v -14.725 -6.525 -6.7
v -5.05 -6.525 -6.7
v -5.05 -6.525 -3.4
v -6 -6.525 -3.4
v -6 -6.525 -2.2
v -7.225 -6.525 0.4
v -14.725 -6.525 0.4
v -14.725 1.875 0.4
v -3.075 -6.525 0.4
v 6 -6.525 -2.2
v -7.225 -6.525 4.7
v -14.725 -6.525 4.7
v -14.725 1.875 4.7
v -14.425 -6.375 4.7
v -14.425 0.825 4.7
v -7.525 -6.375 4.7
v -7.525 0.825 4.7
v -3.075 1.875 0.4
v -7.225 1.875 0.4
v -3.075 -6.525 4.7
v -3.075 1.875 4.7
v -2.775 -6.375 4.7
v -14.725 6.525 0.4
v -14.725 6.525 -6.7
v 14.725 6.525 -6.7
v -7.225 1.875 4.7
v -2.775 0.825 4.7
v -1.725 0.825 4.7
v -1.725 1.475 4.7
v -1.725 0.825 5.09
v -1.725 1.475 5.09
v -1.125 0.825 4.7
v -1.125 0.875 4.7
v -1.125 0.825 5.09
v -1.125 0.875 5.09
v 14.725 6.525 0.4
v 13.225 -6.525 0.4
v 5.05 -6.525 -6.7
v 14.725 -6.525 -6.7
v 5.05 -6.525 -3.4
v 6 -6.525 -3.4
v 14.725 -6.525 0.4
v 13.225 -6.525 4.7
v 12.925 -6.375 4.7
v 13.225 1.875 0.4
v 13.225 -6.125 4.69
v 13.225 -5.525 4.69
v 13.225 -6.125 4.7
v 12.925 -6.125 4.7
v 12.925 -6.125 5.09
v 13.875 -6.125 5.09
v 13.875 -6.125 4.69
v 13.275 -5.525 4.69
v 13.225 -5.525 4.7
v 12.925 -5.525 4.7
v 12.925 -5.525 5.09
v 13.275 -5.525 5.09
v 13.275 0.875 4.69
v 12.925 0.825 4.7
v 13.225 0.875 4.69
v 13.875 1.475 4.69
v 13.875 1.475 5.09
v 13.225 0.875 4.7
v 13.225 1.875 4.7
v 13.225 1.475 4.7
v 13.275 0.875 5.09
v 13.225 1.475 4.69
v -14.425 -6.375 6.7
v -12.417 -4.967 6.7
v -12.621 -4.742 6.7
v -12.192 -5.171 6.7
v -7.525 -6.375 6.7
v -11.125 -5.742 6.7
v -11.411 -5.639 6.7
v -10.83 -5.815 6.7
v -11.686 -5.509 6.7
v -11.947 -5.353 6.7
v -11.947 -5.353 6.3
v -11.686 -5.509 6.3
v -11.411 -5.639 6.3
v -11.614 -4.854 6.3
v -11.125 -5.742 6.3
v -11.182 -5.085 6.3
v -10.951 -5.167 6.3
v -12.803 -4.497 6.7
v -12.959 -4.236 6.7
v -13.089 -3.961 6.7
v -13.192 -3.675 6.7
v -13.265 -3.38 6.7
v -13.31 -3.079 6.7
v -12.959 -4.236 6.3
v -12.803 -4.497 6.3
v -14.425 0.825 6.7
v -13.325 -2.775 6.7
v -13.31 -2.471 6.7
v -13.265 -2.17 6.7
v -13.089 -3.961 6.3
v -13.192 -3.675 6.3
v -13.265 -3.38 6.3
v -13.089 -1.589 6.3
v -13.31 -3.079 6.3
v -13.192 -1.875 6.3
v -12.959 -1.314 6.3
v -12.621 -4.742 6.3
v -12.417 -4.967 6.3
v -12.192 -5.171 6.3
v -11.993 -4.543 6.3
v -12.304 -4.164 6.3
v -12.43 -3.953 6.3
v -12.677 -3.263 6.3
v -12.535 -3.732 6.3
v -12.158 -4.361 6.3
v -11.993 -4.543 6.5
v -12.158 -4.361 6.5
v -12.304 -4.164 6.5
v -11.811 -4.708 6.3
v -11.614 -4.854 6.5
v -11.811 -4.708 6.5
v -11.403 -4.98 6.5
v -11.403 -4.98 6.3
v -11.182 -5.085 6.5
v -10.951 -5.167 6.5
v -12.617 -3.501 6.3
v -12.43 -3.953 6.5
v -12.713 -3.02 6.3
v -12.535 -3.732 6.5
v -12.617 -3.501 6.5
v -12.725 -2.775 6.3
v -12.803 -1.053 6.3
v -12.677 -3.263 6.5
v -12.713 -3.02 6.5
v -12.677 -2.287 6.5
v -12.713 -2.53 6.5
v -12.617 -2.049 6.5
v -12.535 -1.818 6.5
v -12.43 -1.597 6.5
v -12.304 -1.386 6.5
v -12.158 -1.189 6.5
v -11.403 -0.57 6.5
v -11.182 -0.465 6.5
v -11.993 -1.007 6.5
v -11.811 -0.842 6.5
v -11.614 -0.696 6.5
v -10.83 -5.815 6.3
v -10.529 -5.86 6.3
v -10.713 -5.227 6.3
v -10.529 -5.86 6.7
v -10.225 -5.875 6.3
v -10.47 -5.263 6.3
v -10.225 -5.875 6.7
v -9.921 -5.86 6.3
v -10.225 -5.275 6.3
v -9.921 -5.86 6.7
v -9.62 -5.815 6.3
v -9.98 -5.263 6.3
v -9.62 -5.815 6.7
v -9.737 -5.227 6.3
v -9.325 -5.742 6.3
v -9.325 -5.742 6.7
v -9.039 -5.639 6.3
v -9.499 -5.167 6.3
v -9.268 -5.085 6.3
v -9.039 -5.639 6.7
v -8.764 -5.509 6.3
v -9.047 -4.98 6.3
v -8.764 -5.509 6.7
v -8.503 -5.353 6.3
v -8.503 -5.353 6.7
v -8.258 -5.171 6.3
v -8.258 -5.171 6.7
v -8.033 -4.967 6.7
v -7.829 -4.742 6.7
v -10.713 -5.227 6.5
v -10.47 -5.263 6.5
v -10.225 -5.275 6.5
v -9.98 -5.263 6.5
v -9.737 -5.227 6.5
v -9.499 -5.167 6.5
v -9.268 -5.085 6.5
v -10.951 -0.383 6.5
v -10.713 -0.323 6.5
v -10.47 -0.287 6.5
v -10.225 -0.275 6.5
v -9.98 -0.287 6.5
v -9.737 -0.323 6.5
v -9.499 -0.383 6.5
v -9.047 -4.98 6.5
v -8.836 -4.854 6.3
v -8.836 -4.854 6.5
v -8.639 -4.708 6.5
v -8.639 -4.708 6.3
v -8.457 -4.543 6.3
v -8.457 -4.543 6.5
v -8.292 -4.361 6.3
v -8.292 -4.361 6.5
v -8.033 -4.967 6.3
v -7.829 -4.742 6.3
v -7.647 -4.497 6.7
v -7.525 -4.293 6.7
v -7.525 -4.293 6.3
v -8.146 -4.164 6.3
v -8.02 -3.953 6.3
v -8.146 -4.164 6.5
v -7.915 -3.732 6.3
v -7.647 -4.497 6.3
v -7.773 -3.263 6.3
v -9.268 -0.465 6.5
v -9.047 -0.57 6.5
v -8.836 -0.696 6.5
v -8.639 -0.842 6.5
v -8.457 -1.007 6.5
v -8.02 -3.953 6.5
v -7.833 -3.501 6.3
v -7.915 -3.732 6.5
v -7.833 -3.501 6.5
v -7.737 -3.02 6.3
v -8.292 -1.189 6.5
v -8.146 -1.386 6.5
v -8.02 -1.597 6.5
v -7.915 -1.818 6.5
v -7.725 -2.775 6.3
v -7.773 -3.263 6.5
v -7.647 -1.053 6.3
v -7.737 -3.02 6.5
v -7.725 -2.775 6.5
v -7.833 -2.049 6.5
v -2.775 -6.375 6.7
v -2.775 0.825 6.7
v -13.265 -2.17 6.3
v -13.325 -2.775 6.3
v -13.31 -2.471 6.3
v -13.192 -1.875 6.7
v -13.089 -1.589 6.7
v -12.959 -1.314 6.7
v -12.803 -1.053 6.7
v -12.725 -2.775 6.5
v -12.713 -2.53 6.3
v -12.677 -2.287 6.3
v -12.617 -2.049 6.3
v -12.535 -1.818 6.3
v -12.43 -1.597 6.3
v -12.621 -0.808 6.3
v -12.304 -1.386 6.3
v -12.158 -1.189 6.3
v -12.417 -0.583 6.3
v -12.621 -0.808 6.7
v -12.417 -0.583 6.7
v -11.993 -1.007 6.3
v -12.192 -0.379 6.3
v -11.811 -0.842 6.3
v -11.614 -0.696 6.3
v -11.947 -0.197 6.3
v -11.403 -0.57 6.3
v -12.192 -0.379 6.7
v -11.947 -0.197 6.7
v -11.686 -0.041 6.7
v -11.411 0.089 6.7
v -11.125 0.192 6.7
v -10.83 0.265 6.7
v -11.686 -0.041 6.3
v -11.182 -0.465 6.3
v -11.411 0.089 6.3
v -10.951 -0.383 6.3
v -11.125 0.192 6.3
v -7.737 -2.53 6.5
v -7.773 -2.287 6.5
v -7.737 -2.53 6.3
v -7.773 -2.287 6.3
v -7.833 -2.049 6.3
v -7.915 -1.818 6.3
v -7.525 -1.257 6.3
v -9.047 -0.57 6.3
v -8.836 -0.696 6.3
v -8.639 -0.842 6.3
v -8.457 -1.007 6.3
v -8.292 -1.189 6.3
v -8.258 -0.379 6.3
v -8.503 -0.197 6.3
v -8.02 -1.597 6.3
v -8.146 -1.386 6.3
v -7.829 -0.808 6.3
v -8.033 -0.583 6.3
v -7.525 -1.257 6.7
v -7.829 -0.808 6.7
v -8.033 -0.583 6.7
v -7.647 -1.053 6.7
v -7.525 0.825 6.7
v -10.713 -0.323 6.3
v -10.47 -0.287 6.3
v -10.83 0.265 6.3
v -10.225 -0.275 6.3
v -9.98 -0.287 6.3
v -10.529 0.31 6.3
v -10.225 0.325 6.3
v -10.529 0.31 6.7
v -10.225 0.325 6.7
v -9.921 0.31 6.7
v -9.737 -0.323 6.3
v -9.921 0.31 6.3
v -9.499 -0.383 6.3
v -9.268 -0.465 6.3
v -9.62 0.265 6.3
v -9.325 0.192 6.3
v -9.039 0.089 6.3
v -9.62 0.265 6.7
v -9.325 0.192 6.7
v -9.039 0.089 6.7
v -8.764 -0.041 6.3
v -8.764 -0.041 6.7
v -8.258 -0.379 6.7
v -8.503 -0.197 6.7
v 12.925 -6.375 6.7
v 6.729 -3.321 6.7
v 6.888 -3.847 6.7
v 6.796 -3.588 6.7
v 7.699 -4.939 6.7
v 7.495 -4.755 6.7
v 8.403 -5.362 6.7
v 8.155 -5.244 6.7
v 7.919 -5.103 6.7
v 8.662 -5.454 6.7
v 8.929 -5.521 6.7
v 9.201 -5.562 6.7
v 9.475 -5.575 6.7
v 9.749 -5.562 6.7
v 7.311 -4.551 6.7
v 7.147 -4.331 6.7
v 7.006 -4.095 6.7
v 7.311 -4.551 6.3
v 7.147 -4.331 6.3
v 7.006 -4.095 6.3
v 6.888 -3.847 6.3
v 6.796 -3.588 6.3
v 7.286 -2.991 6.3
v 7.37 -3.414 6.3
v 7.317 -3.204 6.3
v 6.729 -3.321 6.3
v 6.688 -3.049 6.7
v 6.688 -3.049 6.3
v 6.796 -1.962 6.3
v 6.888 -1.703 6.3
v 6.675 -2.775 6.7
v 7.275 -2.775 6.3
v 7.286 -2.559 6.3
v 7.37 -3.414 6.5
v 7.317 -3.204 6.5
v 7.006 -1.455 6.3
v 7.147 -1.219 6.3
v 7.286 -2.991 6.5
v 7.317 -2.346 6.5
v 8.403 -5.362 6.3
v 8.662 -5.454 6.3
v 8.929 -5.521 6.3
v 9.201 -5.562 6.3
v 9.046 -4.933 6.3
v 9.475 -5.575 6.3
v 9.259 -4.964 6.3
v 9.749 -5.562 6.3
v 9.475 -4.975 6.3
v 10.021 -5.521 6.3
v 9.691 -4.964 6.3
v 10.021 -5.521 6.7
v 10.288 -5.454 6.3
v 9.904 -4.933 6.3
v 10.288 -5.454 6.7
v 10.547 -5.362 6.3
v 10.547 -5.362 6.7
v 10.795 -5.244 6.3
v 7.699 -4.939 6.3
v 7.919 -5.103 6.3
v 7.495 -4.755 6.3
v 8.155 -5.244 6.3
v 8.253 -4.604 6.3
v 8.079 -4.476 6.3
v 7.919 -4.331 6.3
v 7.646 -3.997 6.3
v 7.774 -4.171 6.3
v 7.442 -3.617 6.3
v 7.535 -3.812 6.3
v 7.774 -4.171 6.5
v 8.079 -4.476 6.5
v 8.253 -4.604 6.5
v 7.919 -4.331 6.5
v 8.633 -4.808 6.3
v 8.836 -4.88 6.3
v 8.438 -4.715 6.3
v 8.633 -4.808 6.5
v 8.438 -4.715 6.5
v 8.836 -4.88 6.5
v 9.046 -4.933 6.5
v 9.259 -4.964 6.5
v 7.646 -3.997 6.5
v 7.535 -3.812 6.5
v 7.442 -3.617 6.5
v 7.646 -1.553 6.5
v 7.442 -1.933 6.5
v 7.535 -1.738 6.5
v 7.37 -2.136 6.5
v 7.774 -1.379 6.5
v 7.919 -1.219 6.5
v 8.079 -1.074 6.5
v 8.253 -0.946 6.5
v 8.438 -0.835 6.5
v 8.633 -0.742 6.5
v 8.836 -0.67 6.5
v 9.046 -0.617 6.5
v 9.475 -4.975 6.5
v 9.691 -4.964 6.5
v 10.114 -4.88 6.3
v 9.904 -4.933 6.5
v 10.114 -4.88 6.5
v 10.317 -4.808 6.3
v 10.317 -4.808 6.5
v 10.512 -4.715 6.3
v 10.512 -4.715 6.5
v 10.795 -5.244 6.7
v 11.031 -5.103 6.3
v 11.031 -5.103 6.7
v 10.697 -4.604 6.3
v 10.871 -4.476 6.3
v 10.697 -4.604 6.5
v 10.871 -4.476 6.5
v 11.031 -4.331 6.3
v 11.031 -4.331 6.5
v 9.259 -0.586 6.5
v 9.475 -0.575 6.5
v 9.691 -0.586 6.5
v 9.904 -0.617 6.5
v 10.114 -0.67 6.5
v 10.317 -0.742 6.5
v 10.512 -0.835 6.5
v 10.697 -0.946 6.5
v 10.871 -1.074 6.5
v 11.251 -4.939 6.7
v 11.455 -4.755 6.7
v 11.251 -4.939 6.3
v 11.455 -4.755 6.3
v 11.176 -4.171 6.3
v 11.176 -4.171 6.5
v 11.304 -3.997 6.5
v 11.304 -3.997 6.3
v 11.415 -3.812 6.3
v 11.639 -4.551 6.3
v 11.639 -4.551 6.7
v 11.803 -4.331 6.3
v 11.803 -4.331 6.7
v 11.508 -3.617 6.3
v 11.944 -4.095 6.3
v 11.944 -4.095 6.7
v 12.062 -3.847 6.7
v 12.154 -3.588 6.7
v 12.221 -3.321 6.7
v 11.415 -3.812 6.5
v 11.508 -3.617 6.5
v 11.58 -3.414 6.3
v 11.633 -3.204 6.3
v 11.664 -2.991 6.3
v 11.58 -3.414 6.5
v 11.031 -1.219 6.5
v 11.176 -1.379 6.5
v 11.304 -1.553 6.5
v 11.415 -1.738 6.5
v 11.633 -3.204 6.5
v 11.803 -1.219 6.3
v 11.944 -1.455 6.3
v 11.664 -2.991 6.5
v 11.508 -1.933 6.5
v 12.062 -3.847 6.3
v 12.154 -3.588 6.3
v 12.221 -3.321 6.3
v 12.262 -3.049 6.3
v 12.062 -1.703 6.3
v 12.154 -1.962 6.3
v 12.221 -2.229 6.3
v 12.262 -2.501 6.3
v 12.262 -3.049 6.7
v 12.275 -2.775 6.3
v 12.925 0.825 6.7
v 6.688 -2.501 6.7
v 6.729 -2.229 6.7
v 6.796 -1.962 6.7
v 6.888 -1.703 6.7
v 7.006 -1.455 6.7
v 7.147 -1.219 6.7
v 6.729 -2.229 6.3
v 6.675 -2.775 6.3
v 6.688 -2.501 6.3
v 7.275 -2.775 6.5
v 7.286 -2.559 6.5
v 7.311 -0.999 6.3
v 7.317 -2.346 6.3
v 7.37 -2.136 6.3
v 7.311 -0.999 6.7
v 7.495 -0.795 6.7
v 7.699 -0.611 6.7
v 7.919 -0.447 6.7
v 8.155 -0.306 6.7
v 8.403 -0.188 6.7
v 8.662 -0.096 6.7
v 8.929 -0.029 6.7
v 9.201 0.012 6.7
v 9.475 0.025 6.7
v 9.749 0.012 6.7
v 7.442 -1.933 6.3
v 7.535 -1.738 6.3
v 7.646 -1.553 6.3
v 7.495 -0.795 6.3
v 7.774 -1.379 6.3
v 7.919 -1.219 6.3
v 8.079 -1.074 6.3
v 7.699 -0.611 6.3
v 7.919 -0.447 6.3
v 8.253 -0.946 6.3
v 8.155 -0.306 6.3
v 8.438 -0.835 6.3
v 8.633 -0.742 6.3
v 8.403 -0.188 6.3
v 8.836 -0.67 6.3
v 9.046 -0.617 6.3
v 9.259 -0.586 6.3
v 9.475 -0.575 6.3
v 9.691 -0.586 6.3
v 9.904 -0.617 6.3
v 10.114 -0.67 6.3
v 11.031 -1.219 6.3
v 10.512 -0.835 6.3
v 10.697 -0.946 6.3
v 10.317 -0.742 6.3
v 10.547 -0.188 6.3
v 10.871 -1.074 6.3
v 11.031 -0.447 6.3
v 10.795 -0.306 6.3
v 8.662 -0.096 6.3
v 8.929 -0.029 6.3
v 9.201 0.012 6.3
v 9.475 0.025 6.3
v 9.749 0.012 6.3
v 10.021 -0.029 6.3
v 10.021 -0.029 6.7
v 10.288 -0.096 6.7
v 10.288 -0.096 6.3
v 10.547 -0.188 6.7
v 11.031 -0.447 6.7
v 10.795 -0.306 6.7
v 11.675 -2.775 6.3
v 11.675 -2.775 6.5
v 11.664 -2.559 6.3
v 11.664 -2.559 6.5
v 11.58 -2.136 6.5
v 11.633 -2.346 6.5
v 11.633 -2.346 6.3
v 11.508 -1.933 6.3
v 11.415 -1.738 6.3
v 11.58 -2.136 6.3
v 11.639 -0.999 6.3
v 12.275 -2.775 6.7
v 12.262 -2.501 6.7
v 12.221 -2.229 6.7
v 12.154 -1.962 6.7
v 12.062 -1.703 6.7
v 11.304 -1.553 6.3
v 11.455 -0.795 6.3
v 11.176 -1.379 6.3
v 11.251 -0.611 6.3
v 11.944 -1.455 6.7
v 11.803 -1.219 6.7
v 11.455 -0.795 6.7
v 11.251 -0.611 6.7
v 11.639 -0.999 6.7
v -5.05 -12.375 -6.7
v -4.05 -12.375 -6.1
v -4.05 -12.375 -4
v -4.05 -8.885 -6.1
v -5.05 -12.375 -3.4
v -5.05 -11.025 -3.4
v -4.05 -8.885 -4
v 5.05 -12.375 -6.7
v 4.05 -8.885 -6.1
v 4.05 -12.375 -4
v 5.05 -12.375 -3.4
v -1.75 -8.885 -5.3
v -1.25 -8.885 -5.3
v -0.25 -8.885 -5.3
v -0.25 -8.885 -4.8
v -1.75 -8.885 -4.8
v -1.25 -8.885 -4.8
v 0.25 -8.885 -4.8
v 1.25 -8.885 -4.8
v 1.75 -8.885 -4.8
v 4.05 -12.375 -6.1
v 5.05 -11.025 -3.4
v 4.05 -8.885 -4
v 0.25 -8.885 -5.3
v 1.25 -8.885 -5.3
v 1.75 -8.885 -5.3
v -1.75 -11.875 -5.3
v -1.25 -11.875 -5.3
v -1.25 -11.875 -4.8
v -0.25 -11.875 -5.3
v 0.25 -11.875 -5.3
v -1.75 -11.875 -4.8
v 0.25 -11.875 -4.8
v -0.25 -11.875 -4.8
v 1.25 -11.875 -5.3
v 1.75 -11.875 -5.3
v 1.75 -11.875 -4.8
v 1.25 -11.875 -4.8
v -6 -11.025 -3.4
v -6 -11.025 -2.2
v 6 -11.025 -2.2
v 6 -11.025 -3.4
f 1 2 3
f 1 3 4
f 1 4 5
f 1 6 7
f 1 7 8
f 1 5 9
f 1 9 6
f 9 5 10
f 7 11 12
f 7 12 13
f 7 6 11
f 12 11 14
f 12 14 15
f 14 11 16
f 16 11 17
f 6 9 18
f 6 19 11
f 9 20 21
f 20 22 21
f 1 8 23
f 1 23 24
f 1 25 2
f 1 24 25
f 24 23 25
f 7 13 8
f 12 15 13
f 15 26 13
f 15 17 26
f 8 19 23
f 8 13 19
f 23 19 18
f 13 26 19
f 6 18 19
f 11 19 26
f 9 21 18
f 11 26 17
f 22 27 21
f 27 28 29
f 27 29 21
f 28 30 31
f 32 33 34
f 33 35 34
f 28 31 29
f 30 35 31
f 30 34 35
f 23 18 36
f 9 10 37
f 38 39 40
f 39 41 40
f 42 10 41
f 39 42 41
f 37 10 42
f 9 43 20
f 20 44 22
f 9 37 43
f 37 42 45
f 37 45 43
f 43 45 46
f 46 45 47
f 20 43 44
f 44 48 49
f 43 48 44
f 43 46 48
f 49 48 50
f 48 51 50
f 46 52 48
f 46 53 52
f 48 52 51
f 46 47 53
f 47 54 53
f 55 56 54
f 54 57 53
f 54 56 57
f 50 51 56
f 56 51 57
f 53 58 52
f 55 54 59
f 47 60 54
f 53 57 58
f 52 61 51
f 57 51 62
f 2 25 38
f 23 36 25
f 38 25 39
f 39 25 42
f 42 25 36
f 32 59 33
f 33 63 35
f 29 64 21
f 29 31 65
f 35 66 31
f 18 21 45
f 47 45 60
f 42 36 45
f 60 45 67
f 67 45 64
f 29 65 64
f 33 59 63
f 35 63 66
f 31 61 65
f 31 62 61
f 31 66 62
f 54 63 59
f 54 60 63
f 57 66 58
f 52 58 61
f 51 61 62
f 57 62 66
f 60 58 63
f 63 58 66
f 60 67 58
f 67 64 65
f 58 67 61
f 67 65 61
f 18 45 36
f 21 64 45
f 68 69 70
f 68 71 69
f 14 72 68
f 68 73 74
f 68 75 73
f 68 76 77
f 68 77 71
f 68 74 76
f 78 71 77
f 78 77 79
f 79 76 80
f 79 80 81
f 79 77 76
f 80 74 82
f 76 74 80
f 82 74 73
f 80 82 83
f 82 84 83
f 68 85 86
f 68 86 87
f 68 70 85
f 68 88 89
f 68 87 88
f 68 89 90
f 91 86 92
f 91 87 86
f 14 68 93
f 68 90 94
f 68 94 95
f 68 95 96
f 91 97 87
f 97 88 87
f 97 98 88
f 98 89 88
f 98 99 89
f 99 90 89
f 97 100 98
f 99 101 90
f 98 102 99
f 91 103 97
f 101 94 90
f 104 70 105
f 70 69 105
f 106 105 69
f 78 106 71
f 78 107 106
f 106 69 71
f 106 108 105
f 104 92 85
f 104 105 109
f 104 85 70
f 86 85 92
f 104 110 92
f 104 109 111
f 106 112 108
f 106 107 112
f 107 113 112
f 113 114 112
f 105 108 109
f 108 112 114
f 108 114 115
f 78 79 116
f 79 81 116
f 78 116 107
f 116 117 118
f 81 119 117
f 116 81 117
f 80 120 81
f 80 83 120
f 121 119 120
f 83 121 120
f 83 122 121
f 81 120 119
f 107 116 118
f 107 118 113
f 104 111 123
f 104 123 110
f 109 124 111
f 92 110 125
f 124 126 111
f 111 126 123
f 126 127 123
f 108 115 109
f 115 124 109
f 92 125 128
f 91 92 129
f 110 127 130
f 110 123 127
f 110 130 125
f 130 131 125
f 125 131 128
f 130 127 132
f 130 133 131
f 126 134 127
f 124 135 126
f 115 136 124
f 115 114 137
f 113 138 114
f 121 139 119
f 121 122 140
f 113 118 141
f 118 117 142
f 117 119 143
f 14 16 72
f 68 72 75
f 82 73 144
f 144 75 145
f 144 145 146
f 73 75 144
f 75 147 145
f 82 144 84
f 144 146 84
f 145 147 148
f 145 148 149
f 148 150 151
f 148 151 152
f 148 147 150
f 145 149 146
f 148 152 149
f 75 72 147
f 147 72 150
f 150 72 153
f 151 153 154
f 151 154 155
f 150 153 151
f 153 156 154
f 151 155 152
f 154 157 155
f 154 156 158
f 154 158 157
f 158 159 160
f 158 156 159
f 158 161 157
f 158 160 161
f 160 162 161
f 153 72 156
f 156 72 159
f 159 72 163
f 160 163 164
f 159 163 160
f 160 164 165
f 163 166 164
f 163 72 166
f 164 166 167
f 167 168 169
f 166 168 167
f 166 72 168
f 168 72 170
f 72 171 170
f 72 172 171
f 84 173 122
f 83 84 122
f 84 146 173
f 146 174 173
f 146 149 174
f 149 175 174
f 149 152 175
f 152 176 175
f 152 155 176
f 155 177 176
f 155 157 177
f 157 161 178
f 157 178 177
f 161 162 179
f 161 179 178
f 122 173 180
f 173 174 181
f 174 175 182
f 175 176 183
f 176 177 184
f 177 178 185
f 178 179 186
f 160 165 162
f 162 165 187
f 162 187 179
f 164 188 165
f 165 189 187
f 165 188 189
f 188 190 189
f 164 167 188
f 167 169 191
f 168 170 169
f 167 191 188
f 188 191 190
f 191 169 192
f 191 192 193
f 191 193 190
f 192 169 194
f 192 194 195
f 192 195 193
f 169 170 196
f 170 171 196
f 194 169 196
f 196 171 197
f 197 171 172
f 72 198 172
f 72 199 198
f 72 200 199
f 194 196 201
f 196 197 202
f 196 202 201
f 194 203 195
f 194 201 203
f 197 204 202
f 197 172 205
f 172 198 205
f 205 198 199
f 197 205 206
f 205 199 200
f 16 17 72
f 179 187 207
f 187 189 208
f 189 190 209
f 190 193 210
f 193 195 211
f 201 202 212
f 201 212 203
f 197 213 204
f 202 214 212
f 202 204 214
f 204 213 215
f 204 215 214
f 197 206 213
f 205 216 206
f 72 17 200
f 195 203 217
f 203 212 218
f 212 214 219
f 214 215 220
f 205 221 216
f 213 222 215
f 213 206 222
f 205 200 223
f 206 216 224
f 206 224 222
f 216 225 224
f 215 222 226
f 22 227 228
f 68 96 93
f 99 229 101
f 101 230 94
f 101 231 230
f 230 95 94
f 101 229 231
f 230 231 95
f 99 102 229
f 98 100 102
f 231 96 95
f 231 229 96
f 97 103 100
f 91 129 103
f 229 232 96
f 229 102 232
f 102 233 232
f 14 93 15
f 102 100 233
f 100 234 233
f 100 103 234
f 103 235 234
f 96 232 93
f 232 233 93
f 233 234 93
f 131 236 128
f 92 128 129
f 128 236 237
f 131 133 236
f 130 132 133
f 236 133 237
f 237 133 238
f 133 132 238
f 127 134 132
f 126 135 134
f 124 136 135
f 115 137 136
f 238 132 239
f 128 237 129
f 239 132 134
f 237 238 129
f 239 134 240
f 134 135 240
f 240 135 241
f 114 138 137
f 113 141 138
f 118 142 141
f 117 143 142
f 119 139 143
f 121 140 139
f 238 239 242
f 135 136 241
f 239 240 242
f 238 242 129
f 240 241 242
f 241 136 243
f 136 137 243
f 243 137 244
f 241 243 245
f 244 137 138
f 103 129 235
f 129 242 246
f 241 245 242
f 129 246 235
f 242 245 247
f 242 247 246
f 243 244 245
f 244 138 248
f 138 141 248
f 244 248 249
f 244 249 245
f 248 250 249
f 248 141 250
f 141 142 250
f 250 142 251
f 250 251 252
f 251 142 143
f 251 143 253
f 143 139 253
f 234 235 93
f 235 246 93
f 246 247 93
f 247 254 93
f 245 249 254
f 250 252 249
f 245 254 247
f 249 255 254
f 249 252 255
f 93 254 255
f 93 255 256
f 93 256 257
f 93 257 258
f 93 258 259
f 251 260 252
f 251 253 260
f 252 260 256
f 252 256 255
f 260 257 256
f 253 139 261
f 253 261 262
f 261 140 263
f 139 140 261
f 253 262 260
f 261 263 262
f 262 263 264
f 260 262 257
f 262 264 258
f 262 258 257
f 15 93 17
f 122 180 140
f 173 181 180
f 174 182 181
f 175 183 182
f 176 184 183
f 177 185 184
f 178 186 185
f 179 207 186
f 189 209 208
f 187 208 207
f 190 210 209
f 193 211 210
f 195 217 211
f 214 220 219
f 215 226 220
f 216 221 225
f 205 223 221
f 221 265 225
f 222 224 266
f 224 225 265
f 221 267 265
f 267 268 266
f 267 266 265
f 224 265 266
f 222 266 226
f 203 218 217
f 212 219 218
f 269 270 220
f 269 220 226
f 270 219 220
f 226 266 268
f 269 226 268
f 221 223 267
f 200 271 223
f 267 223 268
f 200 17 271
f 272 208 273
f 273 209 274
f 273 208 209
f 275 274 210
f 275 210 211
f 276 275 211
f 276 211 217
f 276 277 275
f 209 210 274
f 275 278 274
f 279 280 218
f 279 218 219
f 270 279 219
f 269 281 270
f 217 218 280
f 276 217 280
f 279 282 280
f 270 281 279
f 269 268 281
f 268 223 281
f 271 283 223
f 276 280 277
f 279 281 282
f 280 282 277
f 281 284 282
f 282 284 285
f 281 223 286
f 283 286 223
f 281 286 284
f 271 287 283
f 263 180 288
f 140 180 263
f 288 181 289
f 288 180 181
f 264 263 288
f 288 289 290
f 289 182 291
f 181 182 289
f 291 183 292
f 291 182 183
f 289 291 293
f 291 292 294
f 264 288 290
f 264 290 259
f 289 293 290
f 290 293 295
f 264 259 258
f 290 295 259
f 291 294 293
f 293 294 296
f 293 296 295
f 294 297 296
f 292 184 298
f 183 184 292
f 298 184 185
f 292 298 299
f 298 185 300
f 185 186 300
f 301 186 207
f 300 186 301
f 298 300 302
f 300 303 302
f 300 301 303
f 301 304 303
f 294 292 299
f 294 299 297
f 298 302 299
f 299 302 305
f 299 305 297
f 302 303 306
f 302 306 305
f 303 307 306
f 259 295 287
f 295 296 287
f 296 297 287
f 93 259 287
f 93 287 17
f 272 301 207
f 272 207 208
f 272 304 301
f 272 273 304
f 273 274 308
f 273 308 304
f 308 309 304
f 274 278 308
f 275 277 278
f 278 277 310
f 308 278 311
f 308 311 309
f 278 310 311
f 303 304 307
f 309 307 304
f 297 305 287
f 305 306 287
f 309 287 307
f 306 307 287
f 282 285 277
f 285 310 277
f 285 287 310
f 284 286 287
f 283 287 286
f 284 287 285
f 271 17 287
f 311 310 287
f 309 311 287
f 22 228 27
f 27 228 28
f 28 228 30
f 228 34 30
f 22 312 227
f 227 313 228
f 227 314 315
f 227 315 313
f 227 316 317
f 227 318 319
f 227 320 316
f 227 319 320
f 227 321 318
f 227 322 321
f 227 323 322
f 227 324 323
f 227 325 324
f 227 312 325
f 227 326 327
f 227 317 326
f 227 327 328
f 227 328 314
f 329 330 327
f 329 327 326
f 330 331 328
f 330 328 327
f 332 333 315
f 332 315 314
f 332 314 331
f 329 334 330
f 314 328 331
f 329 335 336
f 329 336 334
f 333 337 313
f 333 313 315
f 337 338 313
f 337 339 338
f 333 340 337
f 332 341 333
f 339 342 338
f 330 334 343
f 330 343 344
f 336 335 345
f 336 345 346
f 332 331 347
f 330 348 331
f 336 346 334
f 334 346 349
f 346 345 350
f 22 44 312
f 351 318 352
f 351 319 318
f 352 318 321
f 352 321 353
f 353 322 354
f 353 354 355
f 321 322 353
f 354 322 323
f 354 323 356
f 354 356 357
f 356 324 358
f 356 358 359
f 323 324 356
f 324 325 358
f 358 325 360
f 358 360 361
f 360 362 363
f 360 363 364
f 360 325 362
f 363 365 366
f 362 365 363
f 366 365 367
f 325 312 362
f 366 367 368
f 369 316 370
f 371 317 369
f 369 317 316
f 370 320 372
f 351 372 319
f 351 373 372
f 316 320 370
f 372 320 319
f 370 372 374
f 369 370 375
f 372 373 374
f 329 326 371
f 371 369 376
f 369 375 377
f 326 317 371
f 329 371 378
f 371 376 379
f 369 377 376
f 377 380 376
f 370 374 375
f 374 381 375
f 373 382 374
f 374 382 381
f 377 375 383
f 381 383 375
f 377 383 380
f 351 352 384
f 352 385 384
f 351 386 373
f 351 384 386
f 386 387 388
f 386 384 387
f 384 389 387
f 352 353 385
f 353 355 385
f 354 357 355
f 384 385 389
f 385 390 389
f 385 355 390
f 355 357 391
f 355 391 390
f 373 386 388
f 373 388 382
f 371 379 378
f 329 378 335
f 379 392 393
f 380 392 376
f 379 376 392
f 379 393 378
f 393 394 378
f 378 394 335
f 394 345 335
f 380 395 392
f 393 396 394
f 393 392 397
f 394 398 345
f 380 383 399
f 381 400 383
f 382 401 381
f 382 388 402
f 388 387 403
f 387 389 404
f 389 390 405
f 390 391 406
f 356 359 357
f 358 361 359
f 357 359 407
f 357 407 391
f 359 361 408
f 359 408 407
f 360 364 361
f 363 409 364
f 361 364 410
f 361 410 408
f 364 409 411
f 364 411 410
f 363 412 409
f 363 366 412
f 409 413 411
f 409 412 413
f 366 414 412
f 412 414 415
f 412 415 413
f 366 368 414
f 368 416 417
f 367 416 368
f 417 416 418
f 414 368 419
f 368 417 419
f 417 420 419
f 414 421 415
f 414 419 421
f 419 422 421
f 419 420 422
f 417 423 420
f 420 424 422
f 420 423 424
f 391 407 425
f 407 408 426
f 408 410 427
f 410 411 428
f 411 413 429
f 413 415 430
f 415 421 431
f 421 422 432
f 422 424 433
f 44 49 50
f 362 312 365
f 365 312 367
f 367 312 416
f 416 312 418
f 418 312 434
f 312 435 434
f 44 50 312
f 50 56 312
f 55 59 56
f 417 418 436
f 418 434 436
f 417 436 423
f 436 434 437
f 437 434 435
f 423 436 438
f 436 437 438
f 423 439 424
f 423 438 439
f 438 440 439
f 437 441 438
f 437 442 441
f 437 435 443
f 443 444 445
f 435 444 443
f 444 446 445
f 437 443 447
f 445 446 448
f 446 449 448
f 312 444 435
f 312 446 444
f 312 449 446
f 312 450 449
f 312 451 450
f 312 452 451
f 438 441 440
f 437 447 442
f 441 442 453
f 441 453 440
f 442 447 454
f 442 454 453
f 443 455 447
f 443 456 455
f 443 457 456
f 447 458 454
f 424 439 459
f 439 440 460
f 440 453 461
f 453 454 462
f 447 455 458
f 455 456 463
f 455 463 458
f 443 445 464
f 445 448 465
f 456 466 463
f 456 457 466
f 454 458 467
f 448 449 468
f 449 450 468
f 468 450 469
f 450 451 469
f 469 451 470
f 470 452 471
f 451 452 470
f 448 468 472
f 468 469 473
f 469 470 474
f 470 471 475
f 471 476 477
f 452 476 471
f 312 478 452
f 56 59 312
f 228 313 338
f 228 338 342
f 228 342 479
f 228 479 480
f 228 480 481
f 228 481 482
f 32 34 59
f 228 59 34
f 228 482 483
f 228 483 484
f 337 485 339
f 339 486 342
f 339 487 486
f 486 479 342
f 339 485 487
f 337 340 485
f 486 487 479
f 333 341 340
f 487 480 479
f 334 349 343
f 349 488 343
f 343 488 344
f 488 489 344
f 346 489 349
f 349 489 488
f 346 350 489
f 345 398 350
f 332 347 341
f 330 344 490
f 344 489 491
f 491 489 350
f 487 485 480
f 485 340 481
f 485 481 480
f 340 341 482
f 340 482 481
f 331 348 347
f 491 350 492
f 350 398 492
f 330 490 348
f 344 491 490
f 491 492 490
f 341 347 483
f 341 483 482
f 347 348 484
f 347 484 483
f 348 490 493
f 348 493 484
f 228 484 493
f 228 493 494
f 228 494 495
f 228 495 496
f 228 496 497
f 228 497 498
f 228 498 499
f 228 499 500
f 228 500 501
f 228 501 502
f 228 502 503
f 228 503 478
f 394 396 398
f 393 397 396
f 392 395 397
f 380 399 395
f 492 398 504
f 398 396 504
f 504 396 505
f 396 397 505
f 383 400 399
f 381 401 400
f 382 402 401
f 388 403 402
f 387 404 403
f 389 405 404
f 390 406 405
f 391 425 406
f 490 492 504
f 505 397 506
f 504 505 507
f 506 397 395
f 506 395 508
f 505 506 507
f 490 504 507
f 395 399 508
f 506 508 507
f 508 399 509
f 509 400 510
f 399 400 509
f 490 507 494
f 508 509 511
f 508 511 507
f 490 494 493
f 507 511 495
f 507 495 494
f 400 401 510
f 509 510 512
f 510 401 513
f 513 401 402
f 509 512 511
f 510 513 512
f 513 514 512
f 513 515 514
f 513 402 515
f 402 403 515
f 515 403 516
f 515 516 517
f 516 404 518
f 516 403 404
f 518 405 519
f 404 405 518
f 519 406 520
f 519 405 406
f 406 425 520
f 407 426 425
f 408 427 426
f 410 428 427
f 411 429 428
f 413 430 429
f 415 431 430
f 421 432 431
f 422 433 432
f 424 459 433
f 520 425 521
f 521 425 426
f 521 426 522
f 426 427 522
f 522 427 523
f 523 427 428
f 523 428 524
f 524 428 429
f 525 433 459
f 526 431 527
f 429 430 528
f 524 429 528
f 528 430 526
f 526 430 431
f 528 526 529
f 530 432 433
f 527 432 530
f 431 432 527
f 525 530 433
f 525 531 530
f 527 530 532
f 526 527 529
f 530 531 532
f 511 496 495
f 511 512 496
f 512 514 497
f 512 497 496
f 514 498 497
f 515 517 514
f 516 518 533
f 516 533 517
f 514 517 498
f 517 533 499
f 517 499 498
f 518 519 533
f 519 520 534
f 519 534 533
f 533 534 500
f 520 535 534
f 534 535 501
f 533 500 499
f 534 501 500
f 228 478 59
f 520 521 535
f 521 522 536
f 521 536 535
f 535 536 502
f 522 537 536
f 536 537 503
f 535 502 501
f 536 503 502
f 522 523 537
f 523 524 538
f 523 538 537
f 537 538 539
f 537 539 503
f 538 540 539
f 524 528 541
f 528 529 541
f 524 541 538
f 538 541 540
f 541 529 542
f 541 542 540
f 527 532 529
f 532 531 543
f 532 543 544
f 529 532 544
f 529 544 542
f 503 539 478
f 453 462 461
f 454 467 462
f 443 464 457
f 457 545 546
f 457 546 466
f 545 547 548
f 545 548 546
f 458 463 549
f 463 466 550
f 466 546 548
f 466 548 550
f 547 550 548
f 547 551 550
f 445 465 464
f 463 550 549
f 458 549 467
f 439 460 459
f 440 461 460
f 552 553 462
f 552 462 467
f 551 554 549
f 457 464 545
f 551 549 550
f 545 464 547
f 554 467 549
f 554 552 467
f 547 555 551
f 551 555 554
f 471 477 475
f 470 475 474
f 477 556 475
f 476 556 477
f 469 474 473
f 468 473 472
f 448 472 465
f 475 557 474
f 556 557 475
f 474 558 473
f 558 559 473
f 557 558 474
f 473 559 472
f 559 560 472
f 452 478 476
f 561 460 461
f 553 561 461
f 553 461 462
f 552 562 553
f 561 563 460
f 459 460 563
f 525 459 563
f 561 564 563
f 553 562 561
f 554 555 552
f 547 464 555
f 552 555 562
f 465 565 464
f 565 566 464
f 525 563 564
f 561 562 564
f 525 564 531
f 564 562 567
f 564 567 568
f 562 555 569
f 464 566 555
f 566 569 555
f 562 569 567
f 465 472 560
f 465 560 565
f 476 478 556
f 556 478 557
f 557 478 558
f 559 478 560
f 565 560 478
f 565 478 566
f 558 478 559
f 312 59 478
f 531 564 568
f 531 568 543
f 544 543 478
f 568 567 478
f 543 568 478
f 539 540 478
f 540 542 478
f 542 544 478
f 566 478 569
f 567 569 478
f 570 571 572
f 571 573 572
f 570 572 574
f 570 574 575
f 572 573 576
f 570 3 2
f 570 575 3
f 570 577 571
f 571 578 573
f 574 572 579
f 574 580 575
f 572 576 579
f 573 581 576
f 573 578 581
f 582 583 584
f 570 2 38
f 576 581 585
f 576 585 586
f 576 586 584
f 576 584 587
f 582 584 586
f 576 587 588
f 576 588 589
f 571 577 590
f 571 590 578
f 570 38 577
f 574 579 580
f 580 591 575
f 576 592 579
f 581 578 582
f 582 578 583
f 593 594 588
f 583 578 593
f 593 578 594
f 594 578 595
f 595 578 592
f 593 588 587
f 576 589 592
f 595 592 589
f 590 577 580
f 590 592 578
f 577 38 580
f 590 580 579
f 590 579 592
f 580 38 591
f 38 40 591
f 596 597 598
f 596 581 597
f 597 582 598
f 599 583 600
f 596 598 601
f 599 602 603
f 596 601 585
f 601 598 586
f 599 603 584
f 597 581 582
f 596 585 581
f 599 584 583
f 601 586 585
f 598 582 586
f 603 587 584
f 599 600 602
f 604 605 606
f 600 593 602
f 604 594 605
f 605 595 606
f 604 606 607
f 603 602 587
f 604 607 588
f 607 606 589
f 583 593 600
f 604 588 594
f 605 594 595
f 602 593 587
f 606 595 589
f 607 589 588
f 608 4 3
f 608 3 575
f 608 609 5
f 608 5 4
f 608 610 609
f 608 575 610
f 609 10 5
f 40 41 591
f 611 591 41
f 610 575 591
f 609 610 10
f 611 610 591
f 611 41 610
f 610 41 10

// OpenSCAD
// Sharp GP2Y0D413K0F 距離センサ 外形モデル
// 単位: mm
// 座標系: 本体中心を原点、幅方向 X、高さ方向 Y (+Y 上面)、
//         取付面 (PWB / コネクタ側) を -Z、レンズ面を +Z
$fn = 64;

// ---------- 主要寸法 (データシートより) ----------
W        = 29.45;   // 全幅
H_CASE   = 13.05;   // ケース高さ
D_REAR   = 7.1;     // 後部本体 (PWB 側) の奥行
D_FRONT  = 6.3;     // 前部レンズケースの奥行 (レンズ突出を含む)
D_LENS   = 2.0;     // レンズ突出量
D_TOTAL  = D_REAR + D_FRONT;   // 13.4

H_FRONT  = 8.4;     // 前部レンズケース高さ
H_LENS   = 7.2;     // レンズ部高さ
LENS_CY  = 3.75;    // レンズ中心高さ (ケース下面基準)

X_EMIT   = 4.5;     // 発光側レンズ中心 (左端基準)
X_DET    = 4.5 + 19.7; // 受光側レンズ中心 (左端基準)

BLK_L    = 7.5;     // 前部左ブロック幅
BLK_GAP  = 4.15;    // ブロック間隙間
BLK_R    = 16.3;    // 前部右ブロック幅

H_TOTAL  = 18.9;    // コネクタ下端までの全高
H_BELOW  = H_TOTAL - H_CASE;   // ケース下面より下の突出 5.85

CONN_W   = 10.1;    // コネクタ幅
CONN_D   = 3.3;     // コネクタ奥行
PWB_T    = 1.2;     // PWB 厚さ
PWB_W    = 12.0;    // PWB 露出部の幅 (参考)

// 原点オフセット
x0 = -W/2;                  // 左端
y0 = -H_CASE/2;             // ケース下面
z_rear  = -D_TOTAL/2;       // 後端 (取付面)
z_step  = z_rear + D_REAR;  // 前部ブロック開始
z_front = D_TOTAL/2;        // レンズ先端

module rear_body() {
    // 後部本体 (角を少し面取り)
    translate([x0, y0, z_rear])
        cube([W, H_CASE, D_REAR]);
}

module front_block(x_start, width) {
    translate([x0 + x_start, y0, z_step])
        cube([width, H_FRONT, D_FRONT - D_LENS]);
}

module lens_bump(x_start, width, cx, r) {
    // レンズ突出部 (高さ 7.2) と 円形レンズ
    difference() {
        translate([x0 + x_start + 0.3, y0 + LENS_CY - H_LENS/2, z_step + (D_FRONT - D_LENS)])
            cube([width - 0.6, H_LENS, D_LENS]);
        // レンズ周りの浅い窪み
        translate([x0 + cx, y0 + LENS_CY, z_front - 0.4])
            cylinder(r = r + 0.6, h = 1);
    }
    // レンズ本体
    color([0.35, 0.05, 0.05])
    translate([x0 + cx, y0 + LENS_CY, z_step + (D_FRONT - D_LENS)])
        cylinder(r = r, h = D_LENS - 0.2);
}

module detector_window() {
    // 受光側の矩形窓枠 (前面の浅い段差)
    translate([x0 + 13.0, y0 + 0.4, z_step + (D_FRONT - D_LENS) - 0.01])
        difference() {
            cube([15.6, H_FRONT - 0.8, 0.4]);
            translate([0.6, 0.6, -0.1]) cube([14.4, H_FRONT - 2.0, 0.6]);
        }
}

module pwb() {
    color([0.75, 0.6, 0.35])
    translate([-PWB_W/2, y0 - 4.5, z_rear + CONN_D])
        cube([PWB_W, 4.5 + 2, PWB_T]);
}

module connector() {
    color([0.9, 0.9, 0.9])
    difference() {
        translate([-CONN_W/2, y0 - H_BELOW, z_rear])
            cube([CONN_W, H_BELOW, CONN_D]);
        // 相手コネクタ挿入口 (下面)
        translate([-CONN_W/2 + 1.0, y0 - H_BELOW - 0.01, z_rear + 0.6])
            cube([CONN_W - 2.0, 3.5, CONN_D - 1.2]);
    }
    // 端子 ①②③ (1.5 mm ピッチ)
    color([0.8, 0.8, 0.5])
    for (i = [-1, 0, 1])
        translate([i * 1.5 - 0.25, y0 - H_BELOW + 0.5, z_rear + CONN_D/2 - 0.25])
            cube([0.5, 5.0, 0.5]);
}

module sensor() {
    color([0.15, 0.15, 0.15]) {
        rear_body();
        front_block(0, BLK_L);
        front_block(BLK_L + BLK_GAP, BLK_R);
        detector_window();
    }
    color([0.15, 0.15, 0.15]) {
        lens_bump(0, BLK_L, X_EMIT, 2.5);
        lens_bump(BLK_L + BLK_GAP, BLK_R, X_DET, 2.2);
    }
    pwb();
    connector();
}

sensor();
